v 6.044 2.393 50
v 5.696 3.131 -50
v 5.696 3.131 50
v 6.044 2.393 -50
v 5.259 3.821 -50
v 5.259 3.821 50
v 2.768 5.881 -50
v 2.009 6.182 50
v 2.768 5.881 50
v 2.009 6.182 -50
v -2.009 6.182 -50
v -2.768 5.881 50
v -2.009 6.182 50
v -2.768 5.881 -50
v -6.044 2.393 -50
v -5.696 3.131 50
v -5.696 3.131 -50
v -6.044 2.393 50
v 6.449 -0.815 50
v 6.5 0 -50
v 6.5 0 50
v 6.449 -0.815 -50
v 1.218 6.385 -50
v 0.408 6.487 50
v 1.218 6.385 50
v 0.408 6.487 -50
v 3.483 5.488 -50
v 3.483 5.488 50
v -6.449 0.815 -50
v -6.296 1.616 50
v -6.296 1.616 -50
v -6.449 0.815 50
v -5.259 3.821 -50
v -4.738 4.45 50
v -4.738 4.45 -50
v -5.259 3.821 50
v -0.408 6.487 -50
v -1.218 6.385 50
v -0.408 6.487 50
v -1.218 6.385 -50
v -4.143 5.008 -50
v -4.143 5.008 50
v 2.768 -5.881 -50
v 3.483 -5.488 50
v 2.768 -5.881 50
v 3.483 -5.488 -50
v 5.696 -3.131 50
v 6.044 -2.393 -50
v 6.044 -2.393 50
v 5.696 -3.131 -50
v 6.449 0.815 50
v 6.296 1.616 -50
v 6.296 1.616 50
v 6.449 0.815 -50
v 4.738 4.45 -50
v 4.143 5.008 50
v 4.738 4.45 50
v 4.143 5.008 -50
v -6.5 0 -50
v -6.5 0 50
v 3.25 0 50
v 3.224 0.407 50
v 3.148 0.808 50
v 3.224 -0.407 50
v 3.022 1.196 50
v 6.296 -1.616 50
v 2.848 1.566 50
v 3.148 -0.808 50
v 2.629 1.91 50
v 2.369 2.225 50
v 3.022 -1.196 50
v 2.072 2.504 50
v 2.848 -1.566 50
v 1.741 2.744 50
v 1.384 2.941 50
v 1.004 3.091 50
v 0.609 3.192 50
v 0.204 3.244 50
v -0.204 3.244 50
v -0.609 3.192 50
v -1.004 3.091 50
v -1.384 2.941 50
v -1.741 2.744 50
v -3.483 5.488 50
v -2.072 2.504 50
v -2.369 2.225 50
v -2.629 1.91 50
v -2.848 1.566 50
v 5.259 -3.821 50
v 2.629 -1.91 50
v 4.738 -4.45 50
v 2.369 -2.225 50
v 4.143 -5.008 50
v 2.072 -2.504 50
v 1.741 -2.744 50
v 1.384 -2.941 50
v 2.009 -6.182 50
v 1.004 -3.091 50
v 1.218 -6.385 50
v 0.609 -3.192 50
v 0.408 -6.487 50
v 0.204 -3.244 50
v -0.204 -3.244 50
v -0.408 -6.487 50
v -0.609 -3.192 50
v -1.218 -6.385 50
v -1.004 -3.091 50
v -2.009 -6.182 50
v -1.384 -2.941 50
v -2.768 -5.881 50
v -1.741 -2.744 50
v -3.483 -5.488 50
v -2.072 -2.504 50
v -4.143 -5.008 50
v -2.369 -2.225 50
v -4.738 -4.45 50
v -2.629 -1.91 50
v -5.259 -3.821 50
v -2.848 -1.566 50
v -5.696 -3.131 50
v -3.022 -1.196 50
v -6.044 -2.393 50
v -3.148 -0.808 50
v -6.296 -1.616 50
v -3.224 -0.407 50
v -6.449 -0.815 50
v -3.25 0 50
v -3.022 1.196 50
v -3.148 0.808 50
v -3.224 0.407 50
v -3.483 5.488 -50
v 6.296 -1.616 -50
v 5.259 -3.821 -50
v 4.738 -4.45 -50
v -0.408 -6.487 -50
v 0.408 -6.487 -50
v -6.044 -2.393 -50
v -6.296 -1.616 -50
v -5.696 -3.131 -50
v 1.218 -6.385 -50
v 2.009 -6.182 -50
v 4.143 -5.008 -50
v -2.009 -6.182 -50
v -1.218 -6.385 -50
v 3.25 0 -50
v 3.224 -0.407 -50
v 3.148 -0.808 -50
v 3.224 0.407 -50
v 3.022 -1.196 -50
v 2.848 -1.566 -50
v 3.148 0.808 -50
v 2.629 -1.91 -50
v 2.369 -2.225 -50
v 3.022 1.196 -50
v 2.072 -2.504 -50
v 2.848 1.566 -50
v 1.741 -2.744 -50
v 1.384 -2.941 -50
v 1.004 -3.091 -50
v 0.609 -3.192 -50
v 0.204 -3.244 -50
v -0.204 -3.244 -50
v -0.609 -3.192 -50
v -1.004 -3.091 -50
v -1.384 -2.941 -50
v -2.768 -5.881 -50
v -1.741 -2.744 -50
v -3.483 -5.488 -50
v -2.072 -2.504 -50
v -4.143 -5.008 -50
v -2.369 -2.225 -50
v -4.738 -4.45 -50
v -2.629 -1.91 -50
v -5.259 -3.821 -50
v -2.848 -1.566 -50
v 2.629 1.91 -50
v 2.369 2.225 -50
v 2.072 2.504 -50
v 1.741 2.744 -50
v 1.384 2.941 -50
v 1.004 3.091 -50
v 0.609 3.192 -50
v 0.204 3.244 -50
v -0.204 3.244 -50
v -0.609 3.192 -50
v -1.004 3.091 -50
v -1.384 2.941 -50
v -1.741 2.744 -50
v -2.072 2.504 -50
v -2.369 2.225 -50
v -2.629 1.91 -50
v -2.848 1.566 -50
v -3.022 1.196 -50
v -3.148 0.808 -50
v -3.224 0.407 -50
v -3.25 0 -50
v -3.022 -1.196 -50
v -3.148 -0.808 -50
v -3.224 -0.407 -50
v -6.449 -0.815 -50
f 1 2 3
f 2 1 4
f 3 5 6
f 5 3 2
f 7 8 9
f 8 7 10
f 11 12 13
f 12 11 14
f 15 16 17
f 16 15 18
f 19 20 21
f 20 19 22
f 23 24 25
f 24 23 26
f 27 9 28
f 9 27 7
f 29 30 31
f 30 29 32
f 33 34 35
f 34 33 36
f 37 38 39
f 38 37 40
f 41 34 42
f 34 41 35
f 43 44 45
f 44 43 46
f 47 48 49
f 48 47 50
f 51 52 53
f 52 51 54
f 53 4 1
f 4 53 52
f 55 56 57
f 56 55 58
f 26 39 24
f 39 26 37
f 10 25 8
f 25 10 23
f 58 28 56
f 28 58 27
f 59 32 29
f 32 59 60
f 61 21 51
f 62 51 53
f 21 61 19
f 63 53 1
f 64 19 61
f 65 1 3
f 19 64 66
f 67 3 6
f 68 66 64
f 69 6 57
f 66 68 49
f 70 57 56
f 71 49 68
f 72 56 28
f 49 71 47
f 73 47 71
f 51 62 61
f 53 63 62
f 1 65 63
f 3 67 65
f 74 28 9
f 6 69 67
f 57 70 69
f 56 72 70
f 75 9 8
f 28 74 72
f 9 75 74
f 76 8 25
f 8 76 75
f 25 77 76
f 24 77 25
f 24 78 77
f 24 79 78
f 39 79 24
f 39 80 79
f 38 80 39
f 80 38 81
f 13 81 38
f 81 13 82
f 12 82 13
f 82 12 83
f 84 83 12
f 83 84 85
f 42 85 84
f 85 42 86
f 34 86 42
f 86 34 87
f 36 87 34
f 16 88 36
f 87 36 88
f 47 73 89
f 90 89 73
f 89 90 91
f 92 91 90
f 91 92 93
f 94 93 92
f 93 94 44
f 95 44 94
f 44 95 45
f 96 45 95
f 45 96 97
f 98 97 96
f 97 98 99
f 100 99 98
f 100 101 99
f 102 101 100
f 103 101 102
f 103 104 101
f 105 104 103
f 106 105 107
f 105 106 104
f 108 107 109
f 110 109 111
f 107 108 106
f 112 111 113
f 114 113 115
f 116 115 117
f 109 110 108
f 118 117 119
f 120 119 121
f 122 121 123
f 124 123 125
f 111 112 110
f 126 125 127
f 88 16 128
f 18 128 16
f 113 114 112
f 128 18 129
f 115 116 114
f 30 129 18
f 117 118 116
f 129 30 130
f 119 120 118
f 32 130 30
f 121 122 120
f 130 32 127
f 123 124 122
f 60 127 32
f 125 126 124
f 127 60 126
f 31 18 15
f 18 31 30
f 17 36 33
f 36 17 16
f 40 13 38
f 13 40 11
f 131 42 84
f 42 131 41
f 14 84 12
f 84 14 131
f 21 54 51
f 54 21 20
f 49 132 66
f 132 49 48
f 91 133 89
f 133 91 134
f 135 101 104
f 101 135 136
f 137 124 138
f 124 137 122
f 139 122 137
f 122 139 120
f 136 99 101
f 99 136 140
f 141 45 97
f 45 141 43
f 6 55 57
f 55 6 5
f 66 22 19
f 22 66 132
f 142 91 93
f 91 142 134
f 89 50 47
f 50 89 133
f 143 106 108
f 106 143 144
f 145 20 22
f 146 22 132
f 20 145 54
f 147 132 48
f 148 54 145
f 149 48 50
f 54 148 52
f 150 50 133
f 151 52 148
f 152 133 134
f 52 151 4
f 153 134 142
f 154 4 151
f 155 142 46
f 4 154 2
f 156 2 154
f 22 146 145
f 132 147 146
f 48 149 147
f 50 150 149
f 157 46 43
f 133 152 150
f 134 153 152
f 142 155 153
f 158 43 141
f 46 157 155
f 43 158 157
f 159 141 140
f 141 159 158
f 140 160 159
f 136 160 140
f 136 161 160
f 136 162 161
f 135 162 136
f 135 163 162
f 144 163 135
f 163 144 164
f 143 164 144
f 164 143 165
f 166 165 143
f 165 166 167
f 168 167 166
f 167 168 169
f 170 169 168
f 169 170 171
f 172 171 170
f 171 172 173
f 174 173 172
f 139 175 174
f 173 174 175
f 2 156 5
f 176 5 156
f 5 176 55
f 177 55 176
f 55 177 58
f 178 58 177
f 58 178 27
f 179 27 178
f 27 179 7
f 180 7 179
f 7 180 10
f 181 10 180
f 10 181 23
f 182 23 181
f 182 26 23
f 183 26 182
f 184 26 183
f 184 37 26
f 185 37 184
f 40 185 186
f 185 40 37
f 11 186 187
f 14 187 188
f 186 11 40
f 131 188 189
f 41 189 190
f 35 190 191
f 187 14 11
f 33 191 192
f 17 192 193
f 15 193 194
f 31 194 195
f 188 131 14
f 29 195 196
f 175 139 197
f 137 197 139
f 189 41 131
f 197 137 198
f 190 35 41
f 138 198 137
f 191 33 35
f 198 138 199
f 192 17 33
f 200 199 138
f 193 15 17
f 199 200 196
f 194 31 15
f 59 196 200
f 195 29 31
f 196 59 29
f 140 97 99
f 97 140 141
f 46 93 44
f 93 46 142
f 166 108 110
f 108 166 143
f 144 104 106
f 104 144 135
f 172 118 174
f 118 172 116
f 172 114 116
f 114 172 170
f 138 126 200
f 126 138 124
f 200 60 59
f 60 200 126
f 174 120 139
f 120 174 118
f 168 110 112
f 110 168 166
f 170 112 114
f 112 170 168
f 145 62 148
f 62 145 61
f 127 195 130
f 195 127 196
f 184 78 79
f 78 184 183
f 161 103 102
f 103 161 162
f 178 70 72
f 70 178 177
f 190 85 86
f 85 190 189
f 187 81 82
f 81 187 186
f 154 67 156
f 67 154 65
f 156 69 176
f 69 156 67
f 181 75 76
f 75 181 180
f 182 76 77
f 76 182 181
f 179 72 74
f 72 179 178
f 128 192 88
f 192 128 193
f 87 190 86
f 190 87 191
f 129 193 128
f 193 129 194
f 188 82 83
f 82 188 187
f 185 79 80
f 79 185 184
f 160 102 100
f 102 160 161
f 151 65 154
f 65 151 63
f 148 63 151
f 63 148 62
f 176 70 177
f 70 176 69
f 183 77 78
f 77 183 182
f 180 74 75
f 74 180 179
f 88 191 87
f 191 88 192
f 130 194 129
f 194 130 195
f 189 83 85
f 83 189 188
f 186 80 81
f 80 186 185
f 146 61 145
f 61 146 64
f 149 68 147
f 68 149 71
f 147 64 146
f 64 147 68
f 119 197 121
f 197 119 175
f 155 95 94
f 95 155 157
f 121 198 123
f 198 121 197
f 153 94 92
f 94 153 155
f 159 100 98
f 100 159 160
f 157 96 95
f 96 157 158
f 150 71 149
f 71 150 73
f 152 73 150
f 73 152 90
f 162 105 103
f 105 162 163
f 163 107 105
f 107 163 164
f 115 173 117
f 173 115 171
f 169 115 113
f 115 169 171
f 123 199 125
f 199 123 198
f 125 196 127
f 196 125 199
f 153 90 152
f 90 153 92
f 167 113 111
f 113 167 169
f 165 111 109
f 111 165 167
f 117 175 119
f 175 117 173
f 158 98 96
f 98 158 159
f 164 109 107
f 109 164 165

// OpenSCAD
$fn = 50;


difference() {
	union() {
		translate(v = [0, 0, -50.0000000000]) {
			cylinder(h = 100, r = 6.5000000000);
		}
	}
	union() {
		translate(v = [0, 0, -100.0000000000]) {
			cylinder(h = 200, r = 3.2500000000);
		}
	}
}
